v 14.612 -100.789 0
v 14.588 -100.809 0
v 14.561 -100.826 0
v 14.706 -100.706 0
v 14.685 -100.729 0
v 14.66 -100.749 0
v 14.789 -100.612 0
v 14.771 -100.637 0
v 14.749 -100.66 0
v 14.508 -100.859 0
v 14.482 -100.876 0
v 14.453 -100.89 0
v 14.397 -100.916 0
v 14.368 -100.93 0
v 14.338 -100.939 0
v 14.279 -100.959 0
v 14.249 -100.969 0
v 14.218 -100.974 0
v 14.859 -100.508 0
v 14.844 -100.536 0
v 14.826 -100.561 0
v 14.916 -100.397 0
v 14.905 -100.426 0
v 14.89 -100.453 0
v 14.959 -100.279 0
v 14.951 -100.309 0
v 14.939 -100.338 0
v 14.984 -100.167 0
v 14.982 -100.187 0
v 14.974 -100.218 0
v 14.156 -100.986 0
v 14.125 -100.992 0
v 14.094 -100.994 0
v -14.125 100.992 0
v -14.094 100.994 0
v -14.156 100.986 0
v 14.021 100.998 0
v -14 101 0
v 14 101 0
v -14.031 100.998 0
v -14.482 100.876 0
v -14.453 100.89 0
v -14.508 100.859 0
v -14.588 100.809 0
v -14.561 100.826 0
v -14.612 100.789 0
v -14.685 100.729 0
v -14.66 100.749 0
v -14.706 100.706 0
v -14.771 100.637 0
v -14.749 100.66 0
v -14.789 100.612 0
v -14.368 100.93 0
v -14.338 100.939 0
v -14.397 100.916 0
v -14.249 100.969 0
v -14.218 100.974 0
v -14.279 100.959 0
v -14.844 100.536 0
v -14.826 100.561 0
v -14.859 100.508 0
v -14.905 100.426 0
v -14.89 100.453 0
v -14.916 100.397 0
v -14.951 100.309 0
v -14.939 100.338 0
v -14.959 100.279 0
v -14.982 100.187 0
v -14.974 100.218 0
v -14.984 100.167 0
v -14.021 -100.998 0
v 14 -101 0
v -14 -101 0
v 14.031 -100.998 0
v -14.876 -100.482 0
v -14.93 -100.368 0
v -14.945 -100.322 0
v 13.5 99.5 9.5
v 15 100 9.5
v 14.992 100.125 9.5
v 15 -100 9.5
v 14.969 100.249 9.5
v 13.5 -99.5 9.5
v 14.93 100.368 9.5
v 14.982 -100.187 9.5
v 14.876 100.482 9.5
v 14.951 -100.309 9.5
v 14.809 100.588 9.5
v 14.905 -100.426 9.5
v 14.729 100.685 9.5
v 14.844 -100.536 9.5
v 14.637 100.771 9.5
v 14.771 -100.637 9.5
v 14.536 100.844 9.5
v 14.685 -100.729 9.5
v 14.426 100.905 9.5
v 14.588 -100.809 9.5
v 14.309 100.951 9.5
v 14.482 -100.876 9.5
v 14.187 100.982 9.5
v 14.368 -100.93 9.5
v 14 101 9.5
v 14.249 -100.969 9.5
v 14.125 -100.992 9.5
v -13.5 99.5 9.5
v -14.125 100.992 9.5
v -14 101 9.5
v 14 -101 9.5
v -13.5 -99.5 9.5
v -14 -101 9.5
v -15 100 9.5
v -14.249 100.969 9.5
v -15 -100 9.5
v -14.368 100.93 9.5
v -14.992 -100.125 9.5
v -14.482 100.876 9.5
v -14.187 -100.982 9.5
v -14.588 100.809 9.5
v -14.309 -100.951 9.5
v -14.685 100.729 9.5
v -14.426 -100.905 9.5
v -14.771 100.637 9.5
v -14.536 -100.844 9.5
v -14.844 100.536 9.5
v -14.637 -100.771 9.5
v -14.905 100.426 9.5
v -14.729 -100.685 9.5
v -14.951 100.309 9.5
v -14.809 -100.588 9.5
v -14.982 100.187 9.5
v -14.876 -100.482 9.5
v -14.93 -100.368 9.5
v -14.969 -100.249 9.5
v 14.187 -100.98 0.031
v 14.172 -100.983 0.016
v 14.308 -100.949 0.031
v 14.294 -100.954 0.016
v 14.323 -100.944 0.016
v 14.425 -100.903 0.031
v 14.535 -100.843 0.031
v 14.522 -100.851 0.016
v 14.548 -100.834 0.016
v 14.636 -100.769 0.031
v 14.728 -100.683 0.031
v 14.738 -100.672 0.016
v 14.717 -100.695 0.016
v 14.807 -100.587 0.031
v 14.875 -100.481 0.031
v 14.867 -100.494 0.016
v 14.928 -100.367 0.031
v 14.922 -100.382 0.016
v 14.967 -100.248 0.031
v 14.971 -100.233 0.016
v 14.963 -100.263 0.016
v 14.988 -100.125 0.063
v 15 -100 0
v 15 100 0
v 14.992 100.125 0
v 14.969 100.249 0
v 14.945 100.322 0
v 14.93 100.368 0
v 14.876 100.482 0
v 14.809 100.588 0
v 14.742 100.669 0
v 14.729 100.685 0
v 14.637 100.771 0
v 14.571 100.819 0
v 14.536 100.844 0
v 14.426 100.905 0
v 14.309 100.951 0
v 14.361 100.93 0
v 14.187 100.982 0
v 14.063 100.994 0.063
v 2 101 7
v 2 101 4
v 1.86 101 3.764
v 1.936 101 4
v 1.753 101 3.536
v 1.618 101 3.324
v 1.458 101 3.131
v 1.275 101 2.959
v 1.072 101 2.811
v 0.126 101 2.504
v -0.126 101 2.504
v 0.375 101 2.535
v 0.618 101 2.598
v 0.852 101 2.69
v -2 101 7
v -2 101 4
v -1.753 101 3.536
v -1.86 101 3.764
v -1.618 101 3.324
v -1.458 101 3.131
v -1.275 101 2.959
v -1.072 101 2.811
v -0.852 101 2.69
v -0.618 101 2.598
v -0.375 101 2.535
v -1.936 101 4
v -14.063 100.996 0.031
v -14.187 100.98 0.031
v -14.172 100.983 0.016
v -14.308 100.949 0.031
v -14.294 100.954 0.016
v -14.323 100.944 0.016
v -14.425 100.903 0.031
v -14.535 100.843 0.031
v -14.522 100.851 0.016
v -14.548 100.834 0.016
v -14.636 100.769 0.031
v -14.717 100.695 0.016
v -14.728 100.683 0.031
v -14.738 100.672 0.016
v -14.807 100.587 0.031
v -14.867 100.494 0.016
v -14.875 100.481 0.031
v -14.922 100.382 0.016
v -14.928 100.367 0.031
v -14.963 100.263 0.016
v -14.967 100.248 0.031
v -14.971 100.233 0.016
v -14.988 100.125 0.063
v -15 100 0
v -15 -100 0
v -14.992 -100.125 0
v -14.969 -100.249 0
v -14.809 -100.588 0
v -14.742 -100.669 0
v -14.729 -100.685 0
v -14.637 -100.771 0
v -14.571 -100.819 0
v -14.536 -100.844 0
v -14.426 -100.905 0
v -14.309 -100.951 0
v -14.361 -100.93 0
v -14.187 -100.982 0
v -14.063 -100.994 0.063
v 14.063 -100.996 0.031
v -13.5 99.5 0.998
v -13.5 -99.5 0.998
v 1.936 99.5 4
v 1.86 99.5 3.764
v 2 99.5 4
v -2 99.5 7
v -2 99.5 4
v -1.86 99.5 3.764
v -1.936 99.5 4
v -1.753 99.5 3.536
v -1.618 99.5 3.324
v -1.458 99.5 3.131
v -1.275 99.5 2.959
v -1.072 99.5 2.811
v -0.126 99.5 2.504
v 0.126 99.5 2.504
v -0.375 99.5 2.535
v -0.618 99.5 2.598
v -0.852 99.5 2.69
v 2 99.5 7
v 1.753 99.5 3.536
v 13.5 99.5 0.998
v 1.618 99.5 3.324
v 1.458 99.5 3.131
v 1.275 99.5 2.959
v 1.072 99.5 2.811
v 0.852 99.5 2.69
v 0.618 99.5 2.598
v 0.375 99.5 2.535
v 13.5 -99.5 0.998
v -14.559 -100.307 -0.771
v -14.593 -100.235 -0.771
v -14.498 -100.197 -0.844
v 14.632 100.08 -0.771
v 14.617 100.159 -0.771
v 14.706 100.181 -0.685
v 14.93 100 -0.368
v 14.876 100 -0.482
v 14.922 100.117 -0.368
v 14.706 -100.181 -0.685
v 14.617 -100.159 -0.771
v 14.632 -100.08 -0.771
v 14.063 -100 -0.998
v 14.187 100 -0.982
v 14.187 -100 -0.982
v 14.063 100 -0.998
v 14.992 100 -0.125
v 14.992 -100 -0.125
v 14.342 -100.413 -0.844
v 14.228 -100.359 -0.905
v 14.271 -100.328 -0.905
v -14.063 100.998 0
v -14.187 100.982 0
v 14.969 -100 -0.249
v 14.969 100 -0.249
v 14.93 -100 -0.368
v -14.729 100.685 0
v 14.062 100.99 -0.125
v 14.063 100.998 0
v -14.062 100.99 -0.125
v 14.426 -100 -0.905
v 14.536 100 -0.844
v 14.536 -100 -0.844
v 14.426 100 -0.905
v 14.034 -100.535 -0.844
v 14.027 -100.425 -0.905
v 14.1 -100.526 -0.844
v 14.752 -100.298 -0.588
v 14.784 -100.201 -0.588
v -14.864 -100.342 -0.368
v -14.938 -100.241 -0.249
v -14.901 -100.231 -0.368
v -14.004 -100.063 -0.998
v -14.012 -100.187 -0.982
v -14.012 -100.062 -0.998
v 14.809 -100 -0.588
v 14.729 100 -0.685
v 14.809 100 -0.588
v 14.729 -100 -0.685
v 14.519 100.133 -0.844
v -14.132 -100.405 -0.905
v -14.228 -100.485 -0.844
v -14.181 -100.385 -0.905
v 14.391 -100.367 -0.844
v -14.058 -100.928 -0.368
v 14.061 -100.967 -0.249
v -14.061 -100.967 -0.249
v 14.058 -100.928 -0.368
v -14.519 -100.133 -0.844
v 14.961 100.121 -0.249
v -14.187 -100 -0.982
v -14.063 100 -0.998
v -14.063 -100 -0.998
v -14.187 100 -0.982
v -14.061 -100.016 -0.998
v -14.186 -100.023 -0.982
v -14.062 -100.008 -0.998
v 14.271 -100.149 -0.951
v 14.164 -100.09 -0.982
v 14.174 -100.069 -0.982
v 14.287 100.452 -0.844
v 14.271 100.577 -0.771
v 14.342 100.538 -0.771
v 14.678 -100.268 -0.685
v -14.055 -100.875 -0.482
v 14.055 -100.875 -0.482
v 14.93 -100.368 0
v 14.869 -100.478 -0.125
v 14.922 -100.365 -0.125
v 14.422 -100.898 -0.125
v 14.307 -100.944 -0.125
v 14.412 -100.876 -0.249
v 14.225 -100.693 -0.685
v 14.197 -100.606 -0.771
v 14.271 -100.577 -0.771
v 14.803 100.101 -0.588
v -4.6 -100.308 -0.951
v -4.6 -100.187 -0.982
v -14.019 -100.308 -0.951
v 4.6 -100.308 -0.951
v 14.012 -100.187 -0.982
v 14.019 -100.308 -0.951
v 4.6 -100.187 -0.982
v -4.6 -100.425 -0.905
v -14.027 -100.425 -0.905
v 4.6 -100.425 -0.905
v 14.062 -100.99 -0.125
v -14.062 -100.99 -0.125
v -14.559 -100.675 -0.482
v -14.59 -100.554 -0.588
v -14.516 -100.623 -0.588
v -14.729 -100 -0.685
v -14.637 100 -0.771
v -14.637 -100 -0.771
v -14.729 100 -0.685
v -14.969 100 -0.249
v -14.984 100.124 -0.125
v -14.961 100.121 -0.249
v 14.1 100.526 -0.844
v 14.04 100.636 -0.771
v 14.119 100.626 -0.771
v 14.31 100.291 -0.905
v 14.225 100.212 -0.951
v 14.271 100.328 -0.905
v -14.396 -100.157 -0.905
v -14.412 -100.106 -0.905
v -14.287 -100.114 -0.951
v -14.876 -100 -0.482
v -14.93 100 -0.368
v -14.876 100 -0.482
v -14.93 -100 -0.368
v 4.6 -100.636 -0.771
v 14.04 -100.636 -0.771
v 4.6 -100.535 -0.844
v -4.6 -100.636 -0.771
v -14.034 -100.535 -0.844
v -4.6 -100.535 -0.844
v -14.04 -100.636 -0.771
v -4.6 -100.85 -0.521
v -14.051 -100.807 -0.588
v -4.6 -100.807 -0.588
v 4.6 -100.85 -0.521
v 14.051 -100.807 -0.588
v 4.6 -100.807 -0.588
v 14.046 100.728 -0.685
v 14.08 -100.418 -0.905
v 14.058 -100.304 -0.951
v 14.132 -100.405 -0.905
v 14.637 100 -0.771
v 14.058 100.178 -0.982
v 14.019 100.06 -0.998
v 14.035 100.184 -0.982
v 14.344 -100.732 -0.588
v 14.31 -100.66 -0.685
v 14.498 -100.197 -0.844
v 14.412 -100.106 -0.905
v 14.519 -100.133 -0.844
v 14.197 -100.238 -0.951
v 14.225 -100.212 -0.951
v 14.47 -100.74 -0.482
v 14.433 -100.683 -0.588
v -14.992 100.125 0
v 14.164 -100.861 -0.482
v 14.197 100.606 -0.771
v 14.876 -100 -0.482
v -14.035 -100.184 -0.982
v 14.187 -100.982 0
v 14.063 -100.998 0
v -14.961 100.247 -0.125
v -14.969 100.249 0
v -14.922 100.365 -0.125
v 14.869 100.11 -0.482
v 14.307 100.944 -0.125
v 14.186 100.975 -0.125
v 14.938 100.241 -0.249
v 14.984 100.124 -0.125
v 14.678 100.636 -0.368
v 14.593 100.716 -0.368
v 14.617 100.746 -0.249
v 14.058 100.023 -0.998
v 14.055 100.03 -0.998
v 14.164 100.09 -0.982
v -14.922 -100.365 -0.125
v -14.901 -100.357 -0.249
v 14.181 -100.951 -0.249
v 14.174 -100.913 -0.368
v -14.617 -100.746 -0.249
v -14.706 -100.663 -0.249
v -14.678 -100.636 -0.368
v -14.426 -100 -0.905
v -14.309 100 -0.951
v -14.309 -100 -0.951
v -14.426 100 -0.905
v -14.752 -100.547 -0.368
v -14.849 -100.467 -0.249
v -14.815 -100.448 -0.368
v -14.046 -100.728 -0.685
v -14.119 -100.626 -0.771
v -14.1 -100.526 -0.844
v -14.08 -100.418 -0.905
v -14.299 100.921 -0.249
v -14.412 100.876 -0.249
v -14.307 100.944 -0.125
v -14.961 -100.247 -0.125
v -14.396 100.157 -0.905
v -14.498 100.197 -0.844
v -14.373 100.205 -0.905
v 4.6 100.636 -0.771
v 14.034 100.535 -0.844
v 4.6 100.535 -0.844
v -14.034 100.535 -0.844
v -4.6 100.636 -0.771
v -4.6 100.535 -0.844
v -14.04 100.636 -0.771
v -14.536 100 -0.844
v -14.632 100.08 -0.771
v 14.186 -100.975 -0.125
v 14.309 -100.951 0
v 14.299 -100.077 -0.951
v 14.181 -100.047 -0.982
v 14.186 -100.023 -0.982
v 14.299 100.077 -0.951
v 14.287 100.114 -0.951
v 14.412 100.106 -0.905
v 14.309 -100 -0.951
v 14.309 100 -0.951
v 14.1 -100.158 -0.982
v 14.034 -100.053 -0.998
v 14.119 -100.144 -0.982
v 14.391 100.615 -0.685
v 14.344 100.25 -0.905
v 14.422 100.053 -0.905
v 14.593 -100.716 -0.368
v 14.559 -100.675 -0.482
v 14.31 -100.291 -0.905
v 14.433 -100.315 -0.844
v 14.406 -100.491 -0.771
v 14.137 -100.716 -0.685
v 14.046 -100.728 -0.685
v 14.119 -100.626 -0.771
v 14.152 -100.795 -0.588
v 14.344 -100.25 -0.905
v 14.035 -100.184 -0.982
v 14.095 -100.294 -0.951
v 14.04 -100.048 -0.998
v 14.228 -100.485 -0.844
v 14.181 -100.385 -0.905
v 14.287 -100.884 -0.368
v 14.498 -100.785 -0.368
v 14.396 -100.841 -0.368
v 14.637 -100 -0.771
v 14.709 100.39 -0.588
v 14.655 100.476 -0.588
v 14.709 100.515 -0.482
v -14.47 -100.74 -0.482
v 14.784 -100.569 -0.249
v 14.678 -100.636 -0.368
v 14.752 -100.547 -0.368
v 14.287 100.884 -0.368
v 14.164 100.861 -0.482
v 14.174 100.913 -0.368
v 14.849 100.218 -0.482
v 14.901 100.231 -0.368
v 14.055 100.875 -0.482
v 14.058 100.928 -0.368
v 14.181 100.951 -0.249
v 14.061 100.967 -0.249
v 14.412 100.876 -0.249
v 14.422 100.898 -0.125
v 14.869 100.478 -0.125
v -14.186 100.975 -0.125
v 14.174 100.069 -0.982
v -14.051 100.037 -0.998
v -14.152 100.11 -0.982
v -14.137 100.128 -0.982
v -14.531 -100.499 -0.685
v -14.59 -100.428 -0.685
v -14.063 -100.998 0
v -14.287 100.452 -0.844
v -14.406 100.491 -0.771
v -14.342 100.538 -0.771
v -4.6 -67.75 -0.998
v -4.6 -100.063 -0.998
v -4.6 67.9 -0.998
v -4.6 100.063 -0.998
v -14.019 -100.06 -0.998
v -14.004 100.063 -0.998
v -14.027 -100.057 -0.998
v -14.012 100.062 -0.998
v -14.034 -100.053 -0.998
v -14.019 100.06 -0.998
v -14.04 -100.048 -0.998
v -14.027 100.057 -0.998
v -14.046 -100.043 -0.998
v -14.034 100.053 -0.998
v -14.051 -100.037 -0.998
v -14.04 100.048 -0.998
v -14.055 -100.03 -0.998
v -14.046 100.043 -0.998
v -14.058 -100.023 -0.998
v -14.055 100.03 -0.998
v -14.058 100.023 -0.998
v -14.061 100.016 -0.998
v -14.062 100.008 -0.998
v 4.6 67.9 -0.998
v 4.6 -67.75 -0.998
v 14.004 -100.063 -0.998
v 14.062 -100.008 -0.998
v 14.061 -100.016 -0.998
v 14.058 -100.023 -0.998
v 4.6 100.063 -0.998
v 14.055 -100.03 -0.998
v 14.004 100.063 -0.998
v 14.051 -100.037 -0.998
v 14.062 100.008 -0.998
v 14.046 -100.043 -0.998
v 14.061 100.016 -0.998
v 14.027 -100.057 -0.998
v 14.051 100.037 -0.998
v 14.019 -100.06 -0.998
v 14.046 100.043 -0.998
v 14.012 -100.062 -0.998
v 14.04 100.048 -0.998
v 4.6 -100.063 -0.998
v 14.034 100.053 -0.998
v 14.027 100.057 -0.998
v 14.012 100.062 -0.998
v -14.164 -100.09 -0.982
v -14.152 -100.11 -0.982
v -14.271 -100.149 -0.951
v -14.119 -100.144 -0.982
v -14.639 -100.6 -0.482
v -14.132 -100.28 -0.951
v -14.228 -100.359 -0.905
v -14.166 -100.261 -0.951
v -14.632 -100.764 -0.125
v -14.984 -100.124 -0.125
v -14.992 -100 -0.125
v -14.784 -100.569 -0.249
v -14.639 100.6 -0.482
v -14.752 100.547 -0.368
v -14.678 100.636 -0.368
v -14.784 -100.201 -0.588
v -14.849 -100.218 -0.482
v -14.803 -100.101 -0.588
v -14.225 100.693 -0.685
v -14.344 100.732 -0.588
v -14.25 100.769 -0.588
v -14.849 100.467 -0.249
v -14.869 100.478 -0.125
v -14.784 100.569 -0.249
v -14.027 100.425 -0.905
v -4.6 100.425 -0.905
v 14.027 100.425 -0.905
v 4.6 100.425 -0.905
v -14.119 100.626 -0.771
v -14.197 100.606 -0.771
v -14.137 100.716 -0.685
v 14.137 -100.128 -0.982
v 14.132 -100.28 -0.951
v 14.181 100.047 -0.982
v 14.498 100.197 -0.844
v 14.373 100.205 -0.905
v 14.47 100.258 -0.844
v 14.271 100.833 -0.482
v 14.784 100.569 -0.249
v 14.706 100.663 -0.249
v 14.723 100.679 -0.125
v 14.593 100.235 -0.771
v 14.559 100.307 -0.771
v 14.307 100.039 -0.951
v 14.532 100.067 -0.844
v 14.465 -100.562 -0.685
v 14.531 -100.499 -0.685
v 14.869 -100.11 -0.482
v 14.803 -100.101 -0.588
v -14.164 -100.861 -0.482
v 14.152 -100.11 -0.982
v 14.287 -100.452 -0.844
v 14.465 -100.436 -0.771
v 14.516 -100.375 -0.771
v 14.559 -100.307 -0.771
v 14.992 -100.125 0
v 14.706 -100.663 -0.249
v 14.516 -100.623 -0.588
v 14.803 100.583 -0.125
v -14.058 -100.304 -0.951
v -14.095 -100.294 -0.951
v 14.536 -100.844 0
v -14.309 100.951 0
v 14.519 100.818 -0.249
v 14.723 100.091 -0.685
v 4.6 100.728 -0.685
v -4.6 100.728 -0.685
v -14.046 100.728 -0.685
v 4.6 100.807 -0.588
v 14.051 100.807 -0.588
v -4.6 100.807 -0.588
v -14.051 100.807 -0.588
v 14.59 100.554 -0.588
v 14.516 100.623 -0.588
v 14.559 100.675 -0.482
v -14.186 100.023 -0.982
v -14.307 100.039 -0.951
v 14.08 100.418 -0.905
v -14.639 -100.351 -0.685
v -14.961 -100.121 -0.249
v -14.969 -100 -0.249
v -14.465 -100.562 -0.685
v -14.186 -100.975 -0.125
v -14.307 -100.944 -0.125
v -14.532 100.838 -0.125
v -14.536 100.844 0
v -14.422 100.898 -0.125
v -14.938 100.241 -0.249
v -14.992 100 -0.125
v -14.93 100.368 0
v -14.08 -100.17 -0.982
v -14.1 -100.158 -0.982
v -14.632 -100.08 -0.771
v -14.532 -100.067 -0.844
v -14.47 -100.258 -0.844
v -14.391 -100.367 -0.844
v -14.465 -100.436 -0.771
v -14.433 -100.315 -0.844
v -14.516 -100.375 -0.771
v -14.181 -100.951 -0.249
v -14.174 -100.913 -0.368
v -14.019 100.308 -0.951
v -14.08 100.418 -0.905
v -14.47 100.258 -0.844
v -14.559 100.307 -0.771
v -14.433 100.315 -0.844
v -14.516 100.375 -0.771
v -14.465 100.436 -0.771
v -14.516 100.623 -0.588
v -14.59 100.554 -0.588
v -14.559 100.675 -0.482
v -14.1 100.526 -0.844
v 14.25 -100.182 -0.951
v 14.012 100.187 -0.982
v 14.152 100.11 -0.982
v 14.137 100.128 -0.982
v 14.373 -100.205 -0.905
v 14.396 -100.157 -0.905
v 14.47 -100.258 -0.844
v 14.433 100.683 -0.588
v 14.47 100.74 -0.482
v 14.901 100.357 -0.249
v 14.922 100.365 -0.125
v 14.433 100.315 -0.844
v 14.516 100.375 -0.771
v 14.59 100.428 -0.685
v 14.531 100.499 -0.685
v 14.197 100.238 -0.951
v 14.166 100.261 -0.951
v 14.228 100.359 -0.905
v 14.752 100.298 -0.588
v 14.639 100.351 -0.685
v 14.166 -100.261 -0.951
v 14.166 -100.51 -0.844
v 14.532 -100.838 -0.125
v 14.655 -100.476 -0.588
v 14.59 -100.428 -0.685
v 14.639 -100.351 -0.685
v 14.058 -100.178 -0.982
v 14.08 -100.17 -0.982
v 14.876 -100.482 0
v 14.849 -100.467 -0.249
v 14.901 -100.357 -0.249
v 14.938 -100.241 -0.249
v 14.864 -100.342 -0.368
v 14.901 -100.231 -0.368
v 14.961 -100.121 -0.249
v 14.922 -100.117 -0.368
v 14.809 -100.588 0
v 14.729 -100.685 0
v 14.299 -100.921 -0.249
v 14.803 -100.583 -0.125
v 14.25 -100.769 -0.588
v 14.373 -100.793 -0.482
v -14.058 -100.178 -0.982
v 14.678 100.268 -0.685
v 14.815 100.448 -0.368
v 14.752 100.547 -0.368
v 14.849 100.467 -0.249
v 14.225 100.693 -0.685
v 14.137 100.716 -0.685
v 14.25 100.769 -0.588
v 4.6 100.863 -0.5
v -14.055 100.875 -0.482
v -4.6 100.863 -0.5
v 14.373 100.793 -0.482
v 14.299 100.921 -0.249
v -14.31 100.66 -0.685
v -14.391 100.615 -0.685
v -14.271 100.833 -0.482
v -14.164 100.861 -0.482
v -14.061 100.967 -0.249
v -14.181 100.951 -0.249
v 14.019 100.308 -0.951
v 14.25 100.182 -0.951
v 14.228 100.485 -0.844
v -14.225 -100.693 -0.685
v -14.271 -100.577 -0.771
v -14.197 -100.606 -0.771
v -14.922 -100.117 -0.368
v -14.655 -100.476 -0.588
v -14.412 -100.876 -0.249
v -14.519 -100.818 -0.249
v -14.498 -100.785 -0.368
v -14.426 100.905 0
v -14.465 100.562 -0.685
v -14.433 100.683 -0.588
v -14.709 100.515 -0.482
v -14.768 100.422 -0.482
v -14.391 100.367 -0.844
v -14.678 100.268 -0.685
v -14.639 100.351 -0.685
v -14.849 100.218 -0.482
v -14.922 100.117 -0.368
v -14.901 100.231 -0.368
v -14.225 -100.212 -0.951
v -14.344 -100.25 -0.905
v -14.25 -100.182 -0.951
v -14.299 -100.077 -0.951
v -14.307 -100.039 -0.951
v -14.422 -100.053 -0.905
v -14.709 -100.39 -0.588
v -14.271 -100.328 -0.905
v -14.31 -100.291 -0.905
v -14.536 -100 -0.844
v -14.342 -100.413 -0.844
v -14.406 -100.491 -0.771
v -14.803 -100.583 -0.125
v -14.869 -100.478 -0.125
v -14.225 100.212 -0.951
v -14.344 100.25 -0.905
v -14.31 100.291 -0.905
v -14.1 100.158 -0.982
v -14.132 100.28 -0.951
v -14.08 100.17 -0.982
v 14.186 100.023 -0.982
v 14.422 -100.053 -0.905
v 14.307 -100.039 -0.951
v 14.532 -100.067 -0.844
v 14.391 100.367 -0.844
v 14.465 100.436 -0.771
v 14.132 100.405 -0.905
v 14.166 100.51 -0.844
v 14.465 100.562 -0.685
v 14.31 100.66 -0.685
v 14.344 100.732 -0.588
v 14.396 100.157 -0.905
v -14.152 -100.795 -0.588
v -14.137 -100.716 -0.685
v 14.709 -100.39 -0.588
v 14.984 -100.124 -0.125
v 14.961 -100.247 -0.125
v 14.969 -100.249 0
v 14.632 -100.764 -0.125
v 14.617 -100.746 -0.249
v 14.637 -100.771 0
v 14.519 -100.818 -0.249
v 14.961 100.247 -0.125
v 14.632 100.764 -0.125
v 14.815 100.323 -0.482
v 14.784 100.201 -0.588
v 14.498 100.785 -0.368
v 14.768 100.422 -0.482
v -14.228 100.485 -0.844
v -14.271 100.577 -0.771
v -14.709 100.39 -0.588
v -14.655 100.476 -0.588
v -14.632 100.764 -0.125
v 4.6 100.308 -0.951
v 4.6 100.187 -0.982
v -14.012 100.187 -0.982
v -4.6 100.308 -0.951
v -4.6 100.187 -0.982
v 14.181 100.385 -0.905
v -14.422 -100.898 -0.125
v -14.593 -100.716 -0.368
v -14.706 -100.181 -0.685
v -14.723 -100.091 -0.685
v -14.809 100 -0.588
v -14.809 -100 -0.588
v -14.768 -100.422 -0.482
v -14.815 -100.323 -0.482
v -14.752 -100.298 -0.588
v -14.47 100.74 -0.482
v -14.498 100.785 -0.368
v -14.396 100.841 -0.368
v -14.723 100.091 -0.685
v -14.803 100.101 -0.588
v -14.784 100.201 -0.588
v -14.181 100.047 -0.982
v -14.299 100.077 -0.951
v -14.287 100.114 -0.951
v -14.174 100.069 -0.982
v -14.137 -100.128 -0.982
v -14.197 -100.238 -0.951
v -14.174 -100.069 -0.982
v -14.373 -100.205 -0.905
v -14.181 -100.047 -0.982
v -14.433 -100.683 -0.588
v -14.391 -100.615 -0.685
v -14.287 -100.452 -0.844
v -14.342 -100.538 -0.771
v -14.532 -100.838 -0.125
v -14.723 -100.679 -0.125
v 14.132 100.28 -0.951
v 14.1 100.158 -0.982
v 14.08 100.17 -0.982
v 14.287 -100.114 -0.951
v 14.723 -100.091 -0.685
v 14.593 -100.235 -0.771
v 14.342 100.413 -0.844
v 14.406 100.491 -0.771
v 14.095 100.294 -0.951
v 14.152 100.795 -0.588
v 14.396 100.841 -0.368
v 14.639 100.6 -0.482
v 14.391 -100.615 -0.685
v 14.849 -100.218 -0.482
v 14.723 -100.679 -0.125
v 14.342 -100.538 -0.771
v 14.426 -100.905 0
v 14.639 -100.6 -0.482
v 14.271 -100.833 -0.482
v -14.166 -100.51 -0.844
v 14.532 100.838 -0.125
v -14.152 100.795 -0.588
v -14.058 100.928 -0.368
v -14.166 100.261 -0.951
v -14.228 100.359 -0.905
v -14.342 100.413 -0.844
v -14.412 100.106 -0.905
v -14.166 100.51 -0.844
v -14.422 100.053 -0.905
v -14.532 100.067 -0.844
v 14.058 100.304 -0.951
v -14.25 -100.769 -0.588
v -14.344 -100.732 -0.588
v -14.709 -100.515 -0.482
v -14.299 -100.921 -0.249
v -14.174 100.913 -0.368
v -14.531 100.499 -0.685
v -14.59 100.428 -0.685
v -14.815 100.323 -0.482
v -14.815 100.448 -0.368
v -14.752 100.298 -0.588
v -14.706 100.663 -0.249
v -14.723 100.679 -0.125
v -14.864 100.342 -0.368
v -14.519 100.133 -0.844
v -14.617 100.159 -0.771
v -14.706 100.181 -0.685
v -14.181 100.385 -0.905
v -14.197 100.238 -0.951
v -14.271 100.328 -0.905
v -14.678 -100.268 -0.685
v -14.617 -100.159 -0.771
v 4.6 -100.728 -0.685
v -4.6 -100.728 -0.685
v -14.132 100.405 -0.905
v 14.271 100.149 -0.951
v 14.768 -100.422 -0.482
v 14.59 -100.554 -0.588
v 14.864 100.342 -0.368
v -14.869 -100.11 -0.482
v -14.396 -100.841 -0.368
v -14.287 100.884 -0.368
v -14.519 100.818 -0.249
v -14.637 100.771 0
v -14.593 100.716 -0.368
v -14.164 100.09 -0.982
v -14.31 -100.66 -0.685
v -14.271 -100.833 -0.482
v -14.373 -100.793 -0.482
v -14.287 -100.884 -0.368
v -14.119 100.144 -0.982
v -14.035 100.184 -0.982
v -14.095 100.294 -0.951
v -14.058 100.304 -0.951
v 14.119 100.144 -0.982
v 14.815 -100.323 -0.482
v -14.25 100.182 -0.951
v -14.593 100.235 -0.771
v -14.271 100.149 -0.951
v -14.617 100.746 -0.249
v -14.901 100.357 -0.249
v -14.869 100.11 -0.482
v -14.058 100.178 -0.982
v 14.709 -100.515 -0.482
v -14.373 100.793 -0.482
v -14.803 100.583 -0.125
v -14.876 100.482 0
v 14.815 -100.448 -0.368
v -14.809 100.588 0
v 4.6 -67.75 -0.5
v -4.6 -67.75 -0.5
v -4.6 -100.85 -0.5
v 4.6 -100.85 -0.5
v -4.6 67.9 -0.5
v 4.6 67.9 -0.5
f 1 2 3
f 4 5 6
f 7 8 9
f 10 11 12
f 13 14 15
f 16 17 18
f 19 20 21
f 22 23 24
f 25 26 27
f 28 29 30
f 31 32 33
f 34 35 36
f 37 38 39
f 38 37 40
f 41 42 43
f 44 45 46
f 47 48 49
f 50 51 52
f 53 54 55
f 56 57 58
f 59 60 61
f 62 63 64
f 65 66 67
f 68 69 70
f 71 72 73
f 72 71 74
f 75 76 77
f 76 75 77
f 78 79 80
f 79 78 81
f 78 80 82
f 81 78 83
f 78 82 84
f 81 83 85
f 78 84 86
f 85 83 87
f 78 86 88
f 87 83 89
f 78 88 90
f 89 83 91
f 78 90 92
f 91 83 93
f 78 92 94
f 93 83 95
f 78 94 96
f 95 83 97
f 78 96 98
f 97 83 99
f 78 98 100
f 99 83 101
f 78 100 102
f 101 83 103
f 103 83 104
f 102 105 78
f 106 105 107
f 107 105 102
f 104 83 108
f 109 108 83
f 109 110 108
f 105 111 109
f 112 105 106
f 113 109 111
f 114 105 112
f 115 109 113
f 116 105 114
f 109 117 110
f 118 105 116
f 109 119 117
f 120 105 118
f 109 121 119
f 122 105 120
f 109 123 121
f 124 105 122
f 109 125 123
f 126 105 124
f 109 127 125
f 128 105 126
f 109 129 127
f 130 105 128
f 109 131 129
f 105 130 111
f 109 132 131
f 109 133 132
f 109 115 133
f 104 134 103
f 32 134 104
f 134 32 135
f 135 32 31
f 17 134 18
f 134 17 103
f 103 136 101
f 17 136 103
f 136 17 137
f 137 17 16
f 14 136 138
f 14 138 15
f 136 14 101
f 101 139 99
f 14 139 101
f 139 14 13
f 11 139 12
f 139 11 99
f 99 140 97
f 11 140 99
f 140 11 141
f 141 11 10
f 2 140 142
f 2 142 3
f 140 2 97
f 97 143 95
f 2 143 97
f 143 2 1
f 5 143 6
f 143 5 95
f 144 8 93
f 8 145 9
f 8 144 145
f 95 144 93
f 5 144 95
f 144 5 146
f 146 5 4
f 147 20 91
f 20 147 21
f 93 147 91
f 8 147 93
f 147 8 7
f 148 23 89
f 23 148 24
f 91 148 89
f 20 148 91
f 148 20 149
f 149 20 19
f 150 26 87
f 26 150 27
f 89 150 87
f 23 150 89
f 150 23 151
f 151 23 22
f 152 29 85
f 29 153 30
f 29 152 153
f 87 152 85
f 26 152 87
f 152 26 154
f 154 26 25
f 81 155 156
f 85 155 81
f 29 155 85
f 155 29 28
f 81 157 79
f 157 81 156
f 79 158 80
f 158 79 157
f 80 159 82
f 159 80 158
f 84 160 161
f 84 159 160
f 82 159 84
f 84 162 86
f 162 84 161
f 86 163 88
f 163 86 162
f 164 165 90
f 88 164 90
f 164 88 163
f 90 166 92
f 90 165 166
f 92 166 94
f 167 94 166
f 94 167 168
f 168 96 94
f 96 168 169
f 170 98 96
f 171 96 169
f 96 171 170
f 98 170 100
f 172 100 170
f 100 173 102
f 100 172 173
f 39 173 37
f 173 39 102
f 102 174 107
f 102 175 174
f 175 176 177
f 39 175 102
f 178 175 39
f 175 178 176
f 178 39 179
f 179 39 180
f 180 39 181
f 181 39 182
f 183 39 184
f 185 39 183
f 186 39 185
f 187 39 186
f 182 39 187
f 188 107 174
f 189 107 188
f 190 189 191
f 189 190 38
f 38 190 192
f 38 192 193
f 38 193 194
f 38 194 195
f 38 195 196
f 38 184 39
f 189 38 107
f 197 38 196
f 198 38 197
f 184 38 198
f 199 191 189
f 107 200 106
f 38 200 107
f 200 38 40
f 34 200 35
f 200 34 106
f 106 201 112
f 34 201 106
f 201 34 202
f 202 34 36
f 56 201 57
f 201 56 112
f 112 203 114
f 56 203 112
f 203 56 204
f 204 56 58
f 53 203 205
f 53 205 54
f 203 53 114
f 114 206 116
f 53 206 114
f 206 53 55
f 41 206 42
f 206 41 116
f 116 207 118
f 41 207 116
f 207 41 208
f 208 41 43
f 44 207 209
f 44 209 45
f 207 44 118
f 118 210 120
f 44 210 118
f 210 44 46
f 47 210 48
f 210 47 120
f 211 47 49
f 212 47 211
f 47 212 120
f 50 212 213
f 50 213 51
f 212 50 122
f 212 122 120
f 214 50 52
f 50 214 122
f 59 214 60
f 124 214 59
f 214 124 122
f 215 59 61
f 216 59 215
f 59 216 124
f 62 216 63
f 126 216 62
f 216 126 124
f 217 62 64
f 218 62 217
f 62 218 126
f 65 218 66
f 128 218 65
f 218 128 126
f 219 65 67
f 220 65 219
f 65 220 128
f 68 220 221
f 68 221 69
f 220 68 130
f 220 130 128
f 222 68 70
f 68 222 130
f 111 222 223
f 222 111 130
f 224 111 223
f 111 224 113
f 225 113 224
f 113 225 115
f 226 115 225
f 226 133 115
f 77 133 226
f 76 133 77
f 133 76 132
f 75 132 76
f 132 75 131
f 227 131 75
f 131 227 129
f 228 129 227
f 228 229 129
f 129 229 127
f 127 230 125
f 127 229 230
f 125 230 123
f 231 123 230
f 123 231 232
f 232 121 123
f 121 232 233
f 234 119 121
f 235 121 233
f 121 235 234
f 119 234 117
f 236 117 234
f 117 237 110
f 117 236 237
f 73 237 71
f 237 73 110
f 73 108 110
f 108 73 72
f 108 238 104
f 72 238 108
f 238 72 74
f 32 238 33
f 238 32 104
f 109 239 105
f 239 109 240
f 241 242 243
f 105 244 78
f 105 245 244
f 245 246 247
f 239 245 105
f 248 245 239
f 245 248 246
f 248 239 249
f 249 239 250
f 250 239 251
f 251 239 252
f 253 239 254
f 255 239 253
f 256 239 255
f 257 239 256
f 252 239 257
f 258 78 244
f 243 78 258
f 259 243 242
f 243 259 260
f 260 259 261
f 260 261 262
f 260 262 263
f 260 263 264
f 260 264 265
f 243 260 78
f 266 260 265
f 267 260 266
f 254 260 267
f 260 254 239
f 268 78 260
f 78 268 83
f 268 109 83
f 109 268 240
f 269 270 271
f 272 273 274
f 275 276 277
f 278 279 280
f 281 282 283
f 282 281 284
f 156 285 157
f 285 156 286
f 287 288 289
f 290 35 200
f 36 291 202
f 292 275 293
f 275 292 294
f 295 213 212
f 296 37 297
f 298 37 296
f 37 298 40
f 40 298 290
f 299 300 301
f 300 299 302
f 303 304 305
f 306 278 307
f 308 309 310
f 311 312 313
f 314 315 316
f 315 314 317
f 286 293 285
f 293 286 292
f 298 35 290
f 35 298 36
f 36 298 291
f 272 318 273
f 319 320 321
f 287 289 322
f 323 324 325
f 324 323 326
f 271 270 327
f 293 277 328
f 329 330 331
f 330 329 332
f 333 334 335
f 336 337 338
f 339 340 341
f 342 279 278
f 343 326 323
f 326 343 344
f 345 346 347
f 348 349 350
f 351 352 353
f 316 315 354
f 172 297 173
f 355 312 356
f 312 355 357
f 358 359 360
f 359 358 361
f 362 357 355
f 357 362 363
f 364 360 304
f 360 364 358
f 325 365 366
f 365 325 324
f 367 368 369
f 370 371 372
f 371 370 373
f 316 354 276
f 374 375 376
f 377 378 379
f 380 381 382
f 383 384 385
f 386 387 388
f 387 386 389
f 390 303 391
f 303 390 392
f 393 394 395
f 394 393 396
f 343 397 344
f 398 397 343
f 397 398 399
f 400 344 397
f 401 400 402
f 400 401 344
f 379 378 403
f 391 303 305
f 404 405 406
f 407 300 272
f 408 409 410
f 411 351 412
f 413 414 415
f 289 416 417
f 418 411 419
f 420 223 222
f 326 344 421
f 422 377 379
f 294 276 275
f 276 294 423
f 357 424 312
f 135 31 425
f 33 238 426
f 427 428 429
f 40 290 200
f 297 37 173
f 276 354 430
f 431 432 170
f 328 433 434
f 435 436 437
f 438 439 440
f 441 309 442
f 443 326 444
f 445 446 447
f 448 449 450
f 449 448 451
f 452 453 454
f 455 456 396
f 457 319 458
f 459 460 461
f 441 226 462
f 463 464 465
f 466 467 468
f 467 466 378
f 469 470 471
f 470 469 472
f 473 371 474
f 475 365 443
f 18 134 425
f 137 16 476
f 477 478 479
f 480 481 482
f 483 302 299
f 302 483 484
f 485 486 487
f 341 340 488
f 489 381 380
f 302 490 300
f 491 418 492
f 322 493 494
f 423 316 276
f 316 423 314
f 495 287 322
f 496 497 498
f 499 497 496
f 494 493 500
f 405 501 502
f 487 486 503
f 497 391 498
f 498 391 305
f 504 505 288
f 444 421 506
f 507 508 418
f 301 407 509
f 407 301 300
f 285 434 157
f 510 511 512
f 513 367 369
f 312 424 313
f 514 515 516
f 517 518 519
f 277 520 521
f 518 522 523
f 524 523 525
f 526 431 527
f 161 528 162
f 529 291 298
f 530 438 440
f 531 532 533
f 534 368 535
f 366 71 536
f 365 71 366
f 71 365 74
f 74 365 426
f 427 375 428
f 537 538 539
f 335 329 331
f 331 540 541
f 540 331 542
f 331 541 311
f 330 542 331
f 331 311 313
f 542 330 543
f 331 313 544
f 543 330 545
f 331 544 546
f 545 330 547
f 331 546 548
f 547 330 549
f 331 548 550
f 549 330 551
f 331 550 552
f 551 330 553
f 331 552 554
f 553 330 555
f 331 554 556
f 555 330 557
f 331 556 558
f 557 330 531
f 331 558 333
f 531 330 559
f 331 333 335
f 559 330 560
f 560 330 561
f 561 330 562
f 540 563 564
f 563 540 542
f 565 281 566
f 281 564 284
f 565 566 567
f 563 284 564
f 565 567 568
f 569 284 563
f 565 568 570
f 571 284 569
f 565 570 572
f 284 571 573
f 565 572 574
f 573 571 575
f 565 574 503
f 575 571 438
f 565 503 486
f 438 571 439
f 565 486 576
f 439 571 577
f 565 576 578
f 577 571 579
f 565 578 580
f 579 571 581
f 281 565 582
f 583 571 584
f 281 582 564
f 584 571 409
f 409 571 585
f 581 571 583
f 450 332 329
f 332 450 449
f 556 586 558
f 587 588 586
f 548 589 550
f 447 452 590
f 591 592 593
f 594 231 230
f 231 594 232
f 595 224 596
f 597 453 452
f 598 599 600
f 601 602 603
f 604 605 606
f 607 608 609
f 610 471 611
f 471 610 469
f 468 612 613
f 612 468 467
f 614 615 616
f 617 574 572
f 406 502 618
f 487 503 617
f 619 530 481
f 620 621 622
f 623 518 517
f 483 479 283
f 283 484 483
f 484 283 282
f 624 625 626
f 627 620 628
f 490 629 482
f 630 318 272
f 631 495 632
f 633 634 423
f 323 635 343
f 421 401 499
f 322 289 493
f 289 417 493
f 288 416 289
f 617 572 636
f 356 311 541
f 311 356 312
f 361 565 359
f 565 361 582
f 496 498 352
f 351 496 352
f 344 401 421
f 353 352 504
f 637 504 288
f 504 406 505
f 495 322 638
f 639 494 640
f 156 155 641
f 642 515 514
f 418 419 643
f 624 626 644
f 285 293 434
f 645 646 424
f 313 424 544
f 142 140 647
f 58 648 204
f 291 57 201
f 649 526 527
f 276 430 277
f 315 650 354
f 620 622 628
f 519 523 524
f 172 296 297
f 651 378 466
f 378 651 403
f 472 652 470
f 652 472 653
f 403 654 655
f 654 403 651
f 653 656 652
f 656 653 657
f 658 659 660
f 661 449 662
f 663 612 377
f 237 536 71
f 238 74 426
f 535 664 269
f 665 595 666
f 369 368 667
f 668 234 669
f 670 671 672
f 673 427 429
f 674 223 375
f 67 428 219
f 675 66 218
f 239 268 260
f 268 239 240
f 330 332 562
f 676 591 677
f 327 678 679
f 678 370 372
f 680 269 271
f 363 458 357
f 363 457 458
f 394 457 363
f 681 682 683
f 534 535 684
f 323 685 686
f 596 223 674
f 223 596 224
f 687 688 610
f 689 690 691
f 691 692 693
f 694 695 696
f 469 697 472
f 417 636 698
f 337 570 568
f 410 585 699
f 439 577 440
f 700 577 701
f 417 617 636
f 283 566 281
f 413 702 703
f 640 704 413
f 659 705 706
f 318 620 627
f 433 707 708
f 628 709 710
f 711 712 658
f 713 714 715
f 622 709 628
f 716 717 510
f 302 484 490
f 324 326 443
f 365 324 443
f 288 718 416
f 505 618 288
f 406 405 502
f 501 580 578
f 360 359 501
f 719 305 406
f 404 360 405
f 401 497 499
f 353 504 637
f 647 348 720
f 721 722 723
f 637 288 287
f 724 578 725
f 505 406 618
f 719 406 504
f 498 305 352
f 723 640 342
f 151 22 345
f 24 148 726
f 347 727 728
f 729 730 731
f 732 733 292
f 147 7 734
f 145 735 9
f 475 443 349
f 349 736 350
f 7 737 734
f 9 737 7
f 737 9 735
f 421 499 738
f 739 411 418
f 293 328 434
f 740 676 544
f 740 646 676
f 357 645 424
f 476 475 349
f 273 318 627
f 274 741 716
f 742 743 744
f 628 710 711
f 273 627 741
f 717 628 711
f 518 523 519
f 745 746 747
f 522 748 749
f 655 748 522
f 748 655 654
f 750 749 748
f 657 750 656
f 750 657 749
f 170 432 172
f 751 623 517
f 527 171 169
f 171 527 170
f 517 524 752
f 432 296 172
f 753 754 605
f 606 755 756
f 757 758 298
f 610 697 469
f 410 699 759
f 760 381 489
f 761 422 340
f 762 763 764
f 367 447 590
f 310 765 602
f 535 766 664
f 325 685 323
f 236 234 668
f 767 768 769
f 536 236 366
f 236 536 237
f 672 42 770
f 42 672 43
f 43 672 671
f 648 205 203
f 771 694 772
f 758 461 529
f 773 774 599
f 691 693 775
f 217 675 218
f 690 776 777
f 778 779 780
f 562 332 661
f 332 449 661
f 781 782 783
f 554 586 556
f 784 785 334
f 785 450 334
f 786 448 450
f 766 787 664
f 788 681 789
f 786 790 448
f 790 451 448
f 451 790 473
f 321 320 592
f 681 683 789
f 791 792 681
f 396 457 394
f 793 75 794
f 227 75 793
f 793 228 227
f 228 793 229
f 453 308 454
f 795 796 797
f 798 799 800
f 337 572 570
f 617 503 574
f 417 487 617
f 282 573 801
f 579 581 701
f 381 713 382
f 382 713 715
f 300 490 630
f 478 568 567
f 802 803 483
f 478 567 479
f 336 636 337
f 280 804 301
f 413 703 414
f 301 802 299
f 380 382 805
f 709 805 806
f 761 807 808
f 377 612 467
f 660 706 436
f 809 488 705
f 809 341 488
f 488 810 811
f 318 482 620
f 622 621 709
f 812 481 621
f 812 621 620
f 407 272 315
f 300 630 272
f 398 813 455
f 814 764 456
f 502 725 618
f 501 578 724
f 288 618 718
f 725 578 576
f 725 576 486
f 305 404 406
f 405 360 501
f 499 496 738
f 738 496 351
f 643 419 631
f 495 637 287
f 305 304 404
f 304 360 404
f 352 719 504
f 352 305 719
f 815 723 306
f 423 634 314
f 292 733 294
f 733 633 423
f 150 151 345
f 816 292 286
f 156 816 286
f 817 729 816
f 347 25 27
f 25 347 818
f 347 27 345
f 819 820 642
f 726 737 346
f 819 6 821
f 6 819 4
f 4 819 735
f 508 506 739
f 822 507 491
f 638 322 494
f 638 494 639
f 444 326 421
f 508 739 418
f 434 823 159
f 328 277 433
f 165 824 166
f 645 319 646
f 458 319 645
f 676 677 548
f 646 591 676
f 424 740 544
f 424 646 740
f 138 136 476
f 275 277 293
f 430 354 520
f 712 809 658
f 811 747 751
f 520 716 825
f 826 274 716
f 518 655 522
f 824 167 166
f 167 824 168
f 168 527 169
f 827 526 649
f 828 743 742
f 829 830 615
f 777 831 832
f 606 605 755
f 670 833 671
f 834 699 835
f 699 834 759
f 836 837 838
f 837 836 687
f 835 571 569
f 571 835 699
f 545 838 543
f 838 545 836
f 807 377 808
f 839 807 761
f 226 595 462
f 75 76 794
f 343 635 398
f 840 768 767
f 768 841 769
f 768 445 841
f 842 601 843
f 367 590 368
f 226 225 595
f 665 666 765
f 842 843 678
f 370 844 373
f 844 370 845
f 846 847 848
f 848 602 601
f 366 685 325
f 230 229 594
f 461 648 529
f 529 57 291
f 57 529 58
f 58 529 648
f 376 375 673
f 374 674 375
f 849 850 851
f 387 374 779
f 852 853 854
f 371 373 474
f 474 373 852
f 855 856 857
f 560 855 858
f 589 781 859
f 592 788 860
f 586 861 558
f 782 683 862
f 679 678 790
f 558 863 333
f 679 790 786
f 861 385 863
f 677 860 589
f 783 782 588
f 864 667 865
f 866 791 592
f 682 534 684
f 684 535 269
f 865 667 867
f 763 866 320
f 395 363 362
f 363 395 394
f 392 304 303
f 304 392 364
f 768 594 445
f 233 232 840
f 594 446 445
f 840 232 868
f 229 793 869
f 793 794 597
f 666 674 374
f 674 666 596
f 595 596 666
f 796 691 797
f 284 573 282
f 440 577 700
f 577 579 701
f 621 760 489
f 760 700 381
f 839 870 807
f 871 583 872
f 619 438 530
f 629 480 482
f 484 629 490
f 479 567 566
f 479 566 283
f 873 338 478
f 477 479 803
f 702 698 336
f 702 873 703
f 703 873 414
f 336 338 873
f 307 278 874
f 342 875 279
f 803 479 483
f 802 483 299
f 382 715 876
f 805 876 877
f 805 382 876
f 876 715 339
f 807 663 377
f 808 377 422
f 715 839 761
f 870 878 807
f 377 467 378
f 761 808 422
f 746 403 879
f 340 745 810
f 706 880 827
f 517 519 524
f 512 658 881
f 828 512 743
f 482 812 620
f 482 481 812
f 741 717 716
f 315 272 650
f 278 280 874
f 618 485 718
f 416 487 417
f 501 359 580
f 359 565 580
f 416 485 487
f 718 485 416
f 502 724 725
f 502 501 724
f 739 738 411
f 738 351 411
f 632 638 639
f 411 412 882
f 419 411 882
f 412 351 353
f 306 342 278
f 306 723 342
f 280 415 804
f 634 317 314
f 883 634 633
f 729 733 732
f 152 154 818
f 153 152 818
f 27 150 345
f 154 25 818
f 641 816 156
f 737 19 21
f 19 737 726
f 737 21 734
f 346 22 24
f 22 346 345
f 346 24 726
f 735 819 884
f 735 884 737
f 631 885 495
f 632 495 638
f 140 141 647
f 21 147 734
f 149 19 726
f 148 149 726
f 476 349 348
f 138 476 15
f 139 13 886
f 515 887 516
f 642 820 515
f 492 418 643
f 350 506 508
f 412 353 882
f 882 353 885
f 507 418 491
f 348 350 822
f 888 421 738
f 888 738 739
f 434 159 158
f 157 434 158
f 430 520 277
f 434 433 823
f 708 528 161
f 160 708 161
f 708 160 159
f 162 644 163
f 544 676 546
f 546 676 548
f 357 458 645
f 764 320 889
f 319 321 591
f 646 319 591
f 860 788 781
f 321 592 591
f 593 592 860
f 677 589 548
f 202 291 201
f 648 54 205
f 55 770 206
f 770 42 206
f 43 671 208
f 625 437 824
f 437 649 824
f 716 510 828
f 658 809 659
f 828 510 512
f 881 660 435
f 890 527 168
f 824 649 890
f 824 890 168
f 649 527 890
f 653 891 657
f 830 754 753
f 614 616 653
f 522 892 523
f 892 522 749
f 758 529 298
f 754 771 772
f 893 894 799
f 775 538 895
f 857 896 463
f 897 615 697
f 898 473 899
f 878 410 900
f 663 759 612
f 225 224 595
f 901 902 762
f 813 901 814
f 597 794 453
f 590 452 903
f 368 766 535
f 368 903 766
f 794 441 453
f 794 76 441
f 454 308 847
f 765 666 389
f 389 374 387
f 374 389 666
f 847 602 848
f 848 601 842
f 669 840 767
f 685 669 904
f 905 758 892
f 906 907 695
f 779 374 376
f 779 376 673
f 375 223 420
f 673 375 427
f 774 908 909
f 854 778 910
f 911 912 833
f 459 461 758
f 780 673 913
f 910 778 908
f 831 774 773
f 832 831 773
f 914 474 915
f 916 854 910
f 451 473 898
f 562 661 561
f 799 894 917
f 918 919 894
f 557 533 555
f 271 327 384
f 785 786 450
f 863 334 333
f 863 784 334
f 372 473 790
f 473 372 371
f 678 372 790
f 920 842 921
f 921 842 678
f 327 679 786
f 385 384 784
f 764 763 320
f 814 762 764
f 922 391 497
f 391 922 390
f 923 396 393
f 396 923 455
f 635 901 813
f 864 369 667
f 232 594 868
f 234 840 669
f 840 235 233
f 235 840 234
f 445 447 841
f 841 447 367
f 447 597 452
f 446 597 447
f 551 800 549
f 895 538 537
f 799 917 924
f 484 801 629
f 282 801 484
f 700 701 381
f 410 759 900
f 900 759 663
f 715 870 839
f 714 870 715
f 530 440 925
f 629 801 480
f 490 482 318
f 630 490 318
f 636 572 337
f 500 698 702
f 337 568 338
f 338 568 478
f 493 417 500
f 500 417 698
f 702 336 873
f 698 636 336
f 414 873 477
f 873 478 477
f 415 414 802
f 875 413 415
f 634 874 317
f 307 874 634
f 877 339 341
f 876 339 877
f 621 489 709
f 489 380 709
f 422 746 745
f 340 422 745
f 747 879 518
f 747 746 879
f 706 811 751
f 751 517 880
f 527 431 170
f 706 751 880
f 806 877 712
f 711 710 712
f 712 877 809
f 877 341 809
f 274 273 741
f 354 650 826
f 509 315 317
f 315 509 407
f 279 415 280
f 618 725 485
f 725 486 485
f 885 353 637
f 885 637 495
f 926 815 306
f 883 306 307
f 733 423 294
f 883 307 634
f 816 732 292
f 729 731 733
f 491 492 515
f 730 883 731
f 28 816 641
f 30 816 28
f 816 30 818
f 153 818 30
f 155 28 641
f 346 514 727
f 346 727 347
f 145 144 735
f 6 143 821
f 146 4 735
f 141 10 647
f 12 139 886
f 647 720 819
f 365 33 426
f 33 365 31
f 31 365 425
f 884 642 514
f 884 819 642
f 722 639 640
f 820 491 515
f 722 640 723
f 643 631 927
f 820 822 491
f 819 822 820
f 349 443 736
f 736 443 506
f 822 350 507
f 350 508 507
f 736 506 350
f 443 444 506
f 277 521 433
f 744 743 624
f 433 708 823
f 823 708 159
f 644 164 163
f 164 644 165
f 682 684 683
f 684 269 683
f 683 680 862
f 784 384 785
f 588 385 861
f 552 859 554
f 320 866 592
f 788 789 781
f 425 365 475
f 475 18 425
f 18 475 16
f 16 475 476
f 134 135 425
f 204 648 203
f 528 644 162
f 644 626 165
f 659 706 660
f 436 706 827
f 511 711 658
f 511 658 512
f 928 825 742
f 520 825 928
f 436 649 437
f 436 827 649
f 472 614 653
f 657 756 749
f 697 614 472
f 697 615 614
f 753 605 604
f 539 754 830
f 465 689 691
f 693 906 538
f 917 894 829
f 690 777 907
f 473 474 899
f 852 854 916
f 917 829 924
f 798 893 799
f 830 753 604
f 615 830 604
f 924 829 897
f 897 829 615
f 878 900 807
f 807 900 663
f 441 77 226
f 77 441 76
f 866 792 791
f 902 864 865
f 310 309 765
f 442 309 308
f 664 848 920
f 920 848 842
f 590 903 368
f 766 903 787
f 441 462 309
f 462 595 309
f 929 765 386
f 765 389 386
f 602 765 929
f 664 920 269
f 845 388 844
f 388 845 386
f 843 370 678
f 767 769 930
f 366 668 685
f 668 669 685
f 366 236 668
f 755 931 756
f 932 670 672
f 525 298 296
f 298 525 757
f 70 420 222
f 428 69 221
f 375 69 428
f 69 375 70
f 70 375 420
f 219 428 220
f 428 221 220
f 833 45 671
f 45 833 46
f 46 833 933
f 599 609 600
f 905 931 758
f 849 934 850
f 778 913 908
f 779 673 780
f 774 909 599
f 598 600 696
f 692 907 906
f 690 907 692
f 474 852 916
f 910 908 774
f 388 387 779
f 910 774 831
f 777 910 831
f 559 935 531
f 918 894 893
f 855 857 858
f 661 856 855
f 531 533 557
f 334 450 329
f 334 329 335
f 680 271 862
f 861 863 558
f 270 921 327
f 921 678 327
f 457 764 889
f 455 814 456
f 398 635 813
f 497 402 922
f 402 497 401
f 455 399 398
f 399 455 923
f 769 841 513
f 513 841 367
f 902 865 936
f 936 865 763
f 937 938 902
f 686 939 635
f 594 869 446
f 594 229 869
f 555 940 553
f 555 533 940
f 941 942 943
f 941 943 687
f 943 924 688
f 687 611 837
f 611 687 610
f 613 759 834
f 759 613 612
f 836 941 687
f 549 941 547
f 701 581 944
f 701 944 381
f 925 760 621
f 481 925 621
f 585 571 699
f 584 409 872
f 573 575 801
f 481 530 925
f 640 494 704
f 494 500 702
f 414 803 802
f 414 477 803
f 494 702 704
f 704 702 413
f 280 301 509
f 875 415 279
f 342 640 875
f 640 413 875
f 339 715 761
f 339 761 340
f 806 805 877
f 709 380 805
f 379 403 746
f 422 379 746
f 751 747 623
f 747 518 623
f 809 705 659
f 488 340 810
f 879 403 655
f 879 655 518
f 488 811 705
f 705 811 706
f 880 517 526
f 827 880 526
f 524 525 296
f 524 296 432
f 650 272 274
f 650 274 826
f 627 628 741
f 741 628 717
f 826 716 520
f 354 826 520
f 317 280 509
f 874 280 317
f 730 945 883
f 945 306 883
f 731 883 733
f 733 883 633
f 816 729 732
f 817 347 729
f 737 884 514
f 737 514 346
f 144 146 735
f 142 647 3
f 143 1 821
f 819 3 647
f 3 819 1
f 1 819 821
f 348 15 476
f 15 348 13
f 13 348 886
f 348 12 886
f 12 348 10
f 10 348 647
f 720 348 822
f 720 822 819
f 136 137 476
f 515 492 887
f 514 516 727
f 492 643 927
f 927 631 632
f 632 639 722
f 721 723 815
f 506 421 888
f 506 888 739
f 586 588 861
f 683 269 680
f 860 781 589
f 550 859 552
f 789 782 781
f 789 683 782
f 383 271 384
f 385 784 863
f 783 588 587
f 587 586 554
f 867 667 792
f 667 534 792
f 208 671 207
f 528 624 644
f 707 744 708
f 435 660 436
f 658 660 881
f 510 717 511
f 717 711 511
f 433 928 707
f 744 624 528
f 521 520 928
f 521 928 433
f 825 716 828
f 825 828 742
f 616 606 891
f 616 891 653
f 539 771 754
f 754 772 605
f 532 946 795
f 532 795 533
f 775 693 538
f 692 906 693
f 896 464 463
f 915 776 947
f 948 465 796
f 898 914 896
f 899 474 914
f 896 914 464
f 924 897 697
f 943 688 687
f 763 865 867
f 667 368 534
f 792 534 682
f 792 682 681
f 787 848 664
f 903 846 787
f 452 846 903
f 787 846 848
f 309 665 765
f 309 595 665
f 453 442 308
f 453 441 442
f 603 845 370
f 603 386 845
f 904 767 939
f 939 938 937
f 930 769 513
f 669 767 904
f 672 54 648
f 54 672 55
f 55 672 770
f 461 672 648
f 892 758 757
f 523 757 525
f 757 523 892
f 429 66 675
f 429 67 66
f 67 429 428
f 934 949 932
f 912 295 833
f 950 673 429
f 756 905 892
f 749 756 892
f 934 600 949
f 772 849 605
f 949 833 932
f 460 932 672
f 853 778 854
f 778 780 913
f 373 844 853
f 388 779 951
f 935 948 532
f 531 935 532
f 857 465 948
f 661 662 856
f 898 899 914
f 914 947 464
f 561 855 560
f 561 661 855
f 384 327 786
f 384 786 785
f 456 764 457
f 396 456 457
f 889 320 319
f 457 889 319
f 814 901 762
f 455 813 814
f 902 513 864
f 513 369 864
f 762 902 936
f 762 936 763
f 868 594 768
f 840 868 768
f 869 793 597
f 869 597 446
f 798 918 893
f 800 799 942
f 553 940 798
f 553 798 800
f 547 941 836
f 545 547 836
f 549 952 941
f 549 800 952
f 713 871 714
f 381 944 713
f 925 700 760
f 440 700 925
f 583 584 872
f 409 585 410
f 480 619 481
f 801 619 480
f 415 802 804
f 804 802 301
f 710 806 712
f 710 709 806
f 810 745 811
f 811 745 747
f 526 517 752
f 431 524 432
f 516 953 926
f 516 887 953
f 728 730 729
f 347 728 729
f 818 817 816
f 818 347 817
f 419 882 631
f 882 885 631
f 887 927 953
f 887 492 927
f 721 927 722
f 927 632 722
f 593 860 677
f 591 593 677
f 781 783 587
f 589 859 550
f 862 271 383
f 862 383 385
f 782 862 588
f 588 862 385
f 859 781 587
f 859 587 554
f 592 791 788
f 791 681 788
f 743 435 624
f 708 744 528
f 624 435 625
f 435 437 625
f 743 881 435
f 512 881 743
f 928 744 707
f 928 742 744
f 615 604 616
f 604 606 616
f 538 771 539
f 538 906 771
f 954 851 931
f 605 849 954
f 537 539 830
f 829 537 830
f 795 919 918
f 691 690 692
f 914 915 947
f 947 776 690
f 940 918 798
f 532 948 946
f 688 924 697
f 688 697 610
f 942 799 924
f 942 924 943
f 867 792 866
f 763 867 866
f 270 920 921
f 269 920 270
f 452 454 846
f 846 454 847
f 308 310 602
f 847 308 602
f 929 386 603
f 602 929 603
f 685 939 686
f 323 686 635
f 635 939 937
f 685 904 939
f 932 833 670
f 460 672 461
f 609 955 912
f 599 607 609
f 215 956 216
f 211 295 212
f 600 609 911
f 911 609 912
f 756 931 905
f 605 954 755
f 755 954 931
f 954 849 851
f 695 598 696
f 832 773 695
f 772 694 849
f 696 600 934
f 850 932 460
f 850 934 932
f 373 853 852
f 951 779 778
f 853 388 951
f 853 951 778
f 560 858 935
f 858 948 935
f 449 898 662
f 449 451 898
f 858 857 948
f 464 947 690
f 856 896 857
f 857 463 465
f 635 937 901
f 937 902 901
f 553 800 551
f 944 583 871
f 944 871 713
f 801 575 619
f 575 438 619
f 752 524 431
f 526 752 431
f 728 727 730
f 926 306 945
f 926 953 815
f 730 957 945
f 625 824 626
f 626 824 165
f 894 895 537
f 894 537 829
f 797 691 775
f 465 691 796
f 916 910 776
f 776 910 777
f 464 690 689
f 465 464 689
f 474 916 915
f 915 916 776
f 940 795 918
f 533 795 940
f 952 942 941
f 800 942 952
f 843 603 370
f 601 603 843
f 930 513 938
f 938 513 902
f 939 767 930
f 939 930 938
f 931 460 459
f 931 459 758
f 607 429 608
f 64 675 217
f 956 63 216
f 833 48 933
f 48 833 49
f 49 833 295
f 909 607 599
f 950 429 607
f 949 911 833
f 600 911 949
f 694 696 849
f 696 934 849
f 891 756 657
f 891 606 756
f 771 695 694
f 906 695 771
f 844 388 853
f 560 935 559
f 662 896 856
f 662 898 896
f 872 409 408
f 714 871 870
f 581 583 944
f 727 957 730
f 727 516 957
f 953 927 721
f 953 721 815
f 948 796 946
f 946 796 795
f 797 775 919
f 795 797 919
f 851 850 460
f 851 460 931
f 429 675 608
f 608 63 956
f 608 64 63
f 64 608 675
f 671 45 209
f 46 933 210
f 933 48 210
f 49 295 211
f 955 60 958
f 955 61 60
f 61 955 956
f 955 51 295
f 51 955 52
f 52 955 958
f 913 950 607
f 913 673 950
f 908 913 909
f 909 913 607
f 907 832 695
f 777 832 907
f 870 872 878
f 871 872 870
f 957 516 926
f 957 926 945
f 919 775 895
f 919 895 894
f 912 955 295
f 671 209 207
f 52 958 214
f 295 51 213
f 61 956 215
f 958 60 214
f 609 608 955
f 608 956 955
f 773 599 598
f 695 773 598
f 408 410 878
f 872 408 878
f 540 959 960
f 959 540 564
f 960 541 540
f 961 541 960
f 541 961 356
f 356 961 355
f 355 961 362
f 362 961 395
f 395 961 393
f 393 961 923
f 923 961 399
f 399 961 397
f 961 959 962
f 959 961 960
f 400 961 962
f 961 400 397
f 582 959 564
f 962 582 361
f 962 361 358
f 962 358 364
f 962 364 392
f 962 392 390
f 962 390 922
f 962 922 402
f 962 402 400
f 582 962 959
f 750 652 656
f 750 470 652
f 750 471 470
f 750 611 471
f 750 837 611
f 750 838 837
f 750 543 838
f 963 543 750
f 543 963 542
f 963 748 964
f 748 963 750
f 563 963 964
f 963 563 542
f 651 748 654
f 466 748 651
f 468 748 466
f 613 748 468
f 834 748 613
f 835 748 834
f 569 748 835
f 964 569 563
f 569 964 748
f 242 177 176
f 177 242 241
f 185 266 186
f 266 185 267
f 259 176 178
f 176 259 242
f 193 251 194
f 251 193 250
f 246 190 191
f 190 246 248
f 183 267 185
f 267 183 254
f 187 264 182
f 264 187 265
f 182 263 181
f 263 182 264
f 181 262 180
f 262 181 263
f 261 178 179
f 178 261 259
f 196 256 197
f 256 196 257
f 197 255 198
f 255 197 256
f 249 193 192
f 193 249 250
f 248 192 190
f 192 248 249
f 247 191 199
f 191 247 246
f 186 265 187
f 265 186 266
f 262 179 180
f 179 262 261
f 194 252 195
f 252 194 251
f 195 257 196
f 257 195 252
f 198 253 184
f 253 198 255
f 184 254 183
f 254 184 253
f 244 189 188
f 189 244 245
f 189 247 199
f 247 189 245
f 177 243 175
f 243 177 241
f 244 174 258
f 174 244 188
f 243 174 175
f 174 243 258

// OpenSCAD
$fn=50;
BOX_W = 28; // Box Width
BOX_L = 200;// Box Length
BOX_H = 9.5; // Box Height (adjusted to have 4mm base thickness)
CORNER_RADIUS = 1.0; // Radius of corners
WALL = 1;// Wall Thickness

//KEEL_OUTSIDE_WIDTH=9.1;
KEEL_WIDTH=9.2;
KEEL_DEPTH=2;
KEEL_LENGTH=31;

CON_OUTSIDE=6;
CON_INSIDE=4;
CON_LENGTH=3;

difference() {
  union() {
    linear_extrude( BOX_H )
      difference(){
        offset(r=CORNER_RADIUS) square( [BOX_W, BOX_L], center=true );
        offset(r= CORNER_RADIUS - WALL) square([BOX_W-WALL, BOX_L-WALL], center=true );
      };

    coordinates = [ [0,0],[0,BOX_L],[BOX_W,BOX_L],[BOX_W,0] ];

    translate ( [-BOX_W/2, -BOX_L/2] )
      hull()
      for (i = coordinates)
        translate(i) sphere(CORNER_RADIUS);
  }
  // opposite audio connector side
  translate([0,-67.75,BOX_H-11])
  rotate([90,0,0])
  #linear_extrude(KEEL_LENGTH+2.1) square([KEEL_WIDTH,KEEL_DEPTH], center=true);  
  
  // audio connector side
  translate([0,101,BOX_H-11])
  rotate([90,0,0])
  #linear_extrude(KEEL_LENGTH+2.1) square([KEEL_WIDTH,KEEL_DEPTH], center=true);  
  
  translate([0,102.0,BOX_H-5])
  rotate([90,0,0])
  cylinder(h=CON_LENGTH,r=CON_INSIDE/2);
  
  translate([0,102.0,BOX_H-4])
  rotate([90,0,0])
  //cylinder(h=CON_LENGTH+1,r=CON_INSIDE/2);
  linear_extrude(3.0) square([4.0,3], center=true);
}
